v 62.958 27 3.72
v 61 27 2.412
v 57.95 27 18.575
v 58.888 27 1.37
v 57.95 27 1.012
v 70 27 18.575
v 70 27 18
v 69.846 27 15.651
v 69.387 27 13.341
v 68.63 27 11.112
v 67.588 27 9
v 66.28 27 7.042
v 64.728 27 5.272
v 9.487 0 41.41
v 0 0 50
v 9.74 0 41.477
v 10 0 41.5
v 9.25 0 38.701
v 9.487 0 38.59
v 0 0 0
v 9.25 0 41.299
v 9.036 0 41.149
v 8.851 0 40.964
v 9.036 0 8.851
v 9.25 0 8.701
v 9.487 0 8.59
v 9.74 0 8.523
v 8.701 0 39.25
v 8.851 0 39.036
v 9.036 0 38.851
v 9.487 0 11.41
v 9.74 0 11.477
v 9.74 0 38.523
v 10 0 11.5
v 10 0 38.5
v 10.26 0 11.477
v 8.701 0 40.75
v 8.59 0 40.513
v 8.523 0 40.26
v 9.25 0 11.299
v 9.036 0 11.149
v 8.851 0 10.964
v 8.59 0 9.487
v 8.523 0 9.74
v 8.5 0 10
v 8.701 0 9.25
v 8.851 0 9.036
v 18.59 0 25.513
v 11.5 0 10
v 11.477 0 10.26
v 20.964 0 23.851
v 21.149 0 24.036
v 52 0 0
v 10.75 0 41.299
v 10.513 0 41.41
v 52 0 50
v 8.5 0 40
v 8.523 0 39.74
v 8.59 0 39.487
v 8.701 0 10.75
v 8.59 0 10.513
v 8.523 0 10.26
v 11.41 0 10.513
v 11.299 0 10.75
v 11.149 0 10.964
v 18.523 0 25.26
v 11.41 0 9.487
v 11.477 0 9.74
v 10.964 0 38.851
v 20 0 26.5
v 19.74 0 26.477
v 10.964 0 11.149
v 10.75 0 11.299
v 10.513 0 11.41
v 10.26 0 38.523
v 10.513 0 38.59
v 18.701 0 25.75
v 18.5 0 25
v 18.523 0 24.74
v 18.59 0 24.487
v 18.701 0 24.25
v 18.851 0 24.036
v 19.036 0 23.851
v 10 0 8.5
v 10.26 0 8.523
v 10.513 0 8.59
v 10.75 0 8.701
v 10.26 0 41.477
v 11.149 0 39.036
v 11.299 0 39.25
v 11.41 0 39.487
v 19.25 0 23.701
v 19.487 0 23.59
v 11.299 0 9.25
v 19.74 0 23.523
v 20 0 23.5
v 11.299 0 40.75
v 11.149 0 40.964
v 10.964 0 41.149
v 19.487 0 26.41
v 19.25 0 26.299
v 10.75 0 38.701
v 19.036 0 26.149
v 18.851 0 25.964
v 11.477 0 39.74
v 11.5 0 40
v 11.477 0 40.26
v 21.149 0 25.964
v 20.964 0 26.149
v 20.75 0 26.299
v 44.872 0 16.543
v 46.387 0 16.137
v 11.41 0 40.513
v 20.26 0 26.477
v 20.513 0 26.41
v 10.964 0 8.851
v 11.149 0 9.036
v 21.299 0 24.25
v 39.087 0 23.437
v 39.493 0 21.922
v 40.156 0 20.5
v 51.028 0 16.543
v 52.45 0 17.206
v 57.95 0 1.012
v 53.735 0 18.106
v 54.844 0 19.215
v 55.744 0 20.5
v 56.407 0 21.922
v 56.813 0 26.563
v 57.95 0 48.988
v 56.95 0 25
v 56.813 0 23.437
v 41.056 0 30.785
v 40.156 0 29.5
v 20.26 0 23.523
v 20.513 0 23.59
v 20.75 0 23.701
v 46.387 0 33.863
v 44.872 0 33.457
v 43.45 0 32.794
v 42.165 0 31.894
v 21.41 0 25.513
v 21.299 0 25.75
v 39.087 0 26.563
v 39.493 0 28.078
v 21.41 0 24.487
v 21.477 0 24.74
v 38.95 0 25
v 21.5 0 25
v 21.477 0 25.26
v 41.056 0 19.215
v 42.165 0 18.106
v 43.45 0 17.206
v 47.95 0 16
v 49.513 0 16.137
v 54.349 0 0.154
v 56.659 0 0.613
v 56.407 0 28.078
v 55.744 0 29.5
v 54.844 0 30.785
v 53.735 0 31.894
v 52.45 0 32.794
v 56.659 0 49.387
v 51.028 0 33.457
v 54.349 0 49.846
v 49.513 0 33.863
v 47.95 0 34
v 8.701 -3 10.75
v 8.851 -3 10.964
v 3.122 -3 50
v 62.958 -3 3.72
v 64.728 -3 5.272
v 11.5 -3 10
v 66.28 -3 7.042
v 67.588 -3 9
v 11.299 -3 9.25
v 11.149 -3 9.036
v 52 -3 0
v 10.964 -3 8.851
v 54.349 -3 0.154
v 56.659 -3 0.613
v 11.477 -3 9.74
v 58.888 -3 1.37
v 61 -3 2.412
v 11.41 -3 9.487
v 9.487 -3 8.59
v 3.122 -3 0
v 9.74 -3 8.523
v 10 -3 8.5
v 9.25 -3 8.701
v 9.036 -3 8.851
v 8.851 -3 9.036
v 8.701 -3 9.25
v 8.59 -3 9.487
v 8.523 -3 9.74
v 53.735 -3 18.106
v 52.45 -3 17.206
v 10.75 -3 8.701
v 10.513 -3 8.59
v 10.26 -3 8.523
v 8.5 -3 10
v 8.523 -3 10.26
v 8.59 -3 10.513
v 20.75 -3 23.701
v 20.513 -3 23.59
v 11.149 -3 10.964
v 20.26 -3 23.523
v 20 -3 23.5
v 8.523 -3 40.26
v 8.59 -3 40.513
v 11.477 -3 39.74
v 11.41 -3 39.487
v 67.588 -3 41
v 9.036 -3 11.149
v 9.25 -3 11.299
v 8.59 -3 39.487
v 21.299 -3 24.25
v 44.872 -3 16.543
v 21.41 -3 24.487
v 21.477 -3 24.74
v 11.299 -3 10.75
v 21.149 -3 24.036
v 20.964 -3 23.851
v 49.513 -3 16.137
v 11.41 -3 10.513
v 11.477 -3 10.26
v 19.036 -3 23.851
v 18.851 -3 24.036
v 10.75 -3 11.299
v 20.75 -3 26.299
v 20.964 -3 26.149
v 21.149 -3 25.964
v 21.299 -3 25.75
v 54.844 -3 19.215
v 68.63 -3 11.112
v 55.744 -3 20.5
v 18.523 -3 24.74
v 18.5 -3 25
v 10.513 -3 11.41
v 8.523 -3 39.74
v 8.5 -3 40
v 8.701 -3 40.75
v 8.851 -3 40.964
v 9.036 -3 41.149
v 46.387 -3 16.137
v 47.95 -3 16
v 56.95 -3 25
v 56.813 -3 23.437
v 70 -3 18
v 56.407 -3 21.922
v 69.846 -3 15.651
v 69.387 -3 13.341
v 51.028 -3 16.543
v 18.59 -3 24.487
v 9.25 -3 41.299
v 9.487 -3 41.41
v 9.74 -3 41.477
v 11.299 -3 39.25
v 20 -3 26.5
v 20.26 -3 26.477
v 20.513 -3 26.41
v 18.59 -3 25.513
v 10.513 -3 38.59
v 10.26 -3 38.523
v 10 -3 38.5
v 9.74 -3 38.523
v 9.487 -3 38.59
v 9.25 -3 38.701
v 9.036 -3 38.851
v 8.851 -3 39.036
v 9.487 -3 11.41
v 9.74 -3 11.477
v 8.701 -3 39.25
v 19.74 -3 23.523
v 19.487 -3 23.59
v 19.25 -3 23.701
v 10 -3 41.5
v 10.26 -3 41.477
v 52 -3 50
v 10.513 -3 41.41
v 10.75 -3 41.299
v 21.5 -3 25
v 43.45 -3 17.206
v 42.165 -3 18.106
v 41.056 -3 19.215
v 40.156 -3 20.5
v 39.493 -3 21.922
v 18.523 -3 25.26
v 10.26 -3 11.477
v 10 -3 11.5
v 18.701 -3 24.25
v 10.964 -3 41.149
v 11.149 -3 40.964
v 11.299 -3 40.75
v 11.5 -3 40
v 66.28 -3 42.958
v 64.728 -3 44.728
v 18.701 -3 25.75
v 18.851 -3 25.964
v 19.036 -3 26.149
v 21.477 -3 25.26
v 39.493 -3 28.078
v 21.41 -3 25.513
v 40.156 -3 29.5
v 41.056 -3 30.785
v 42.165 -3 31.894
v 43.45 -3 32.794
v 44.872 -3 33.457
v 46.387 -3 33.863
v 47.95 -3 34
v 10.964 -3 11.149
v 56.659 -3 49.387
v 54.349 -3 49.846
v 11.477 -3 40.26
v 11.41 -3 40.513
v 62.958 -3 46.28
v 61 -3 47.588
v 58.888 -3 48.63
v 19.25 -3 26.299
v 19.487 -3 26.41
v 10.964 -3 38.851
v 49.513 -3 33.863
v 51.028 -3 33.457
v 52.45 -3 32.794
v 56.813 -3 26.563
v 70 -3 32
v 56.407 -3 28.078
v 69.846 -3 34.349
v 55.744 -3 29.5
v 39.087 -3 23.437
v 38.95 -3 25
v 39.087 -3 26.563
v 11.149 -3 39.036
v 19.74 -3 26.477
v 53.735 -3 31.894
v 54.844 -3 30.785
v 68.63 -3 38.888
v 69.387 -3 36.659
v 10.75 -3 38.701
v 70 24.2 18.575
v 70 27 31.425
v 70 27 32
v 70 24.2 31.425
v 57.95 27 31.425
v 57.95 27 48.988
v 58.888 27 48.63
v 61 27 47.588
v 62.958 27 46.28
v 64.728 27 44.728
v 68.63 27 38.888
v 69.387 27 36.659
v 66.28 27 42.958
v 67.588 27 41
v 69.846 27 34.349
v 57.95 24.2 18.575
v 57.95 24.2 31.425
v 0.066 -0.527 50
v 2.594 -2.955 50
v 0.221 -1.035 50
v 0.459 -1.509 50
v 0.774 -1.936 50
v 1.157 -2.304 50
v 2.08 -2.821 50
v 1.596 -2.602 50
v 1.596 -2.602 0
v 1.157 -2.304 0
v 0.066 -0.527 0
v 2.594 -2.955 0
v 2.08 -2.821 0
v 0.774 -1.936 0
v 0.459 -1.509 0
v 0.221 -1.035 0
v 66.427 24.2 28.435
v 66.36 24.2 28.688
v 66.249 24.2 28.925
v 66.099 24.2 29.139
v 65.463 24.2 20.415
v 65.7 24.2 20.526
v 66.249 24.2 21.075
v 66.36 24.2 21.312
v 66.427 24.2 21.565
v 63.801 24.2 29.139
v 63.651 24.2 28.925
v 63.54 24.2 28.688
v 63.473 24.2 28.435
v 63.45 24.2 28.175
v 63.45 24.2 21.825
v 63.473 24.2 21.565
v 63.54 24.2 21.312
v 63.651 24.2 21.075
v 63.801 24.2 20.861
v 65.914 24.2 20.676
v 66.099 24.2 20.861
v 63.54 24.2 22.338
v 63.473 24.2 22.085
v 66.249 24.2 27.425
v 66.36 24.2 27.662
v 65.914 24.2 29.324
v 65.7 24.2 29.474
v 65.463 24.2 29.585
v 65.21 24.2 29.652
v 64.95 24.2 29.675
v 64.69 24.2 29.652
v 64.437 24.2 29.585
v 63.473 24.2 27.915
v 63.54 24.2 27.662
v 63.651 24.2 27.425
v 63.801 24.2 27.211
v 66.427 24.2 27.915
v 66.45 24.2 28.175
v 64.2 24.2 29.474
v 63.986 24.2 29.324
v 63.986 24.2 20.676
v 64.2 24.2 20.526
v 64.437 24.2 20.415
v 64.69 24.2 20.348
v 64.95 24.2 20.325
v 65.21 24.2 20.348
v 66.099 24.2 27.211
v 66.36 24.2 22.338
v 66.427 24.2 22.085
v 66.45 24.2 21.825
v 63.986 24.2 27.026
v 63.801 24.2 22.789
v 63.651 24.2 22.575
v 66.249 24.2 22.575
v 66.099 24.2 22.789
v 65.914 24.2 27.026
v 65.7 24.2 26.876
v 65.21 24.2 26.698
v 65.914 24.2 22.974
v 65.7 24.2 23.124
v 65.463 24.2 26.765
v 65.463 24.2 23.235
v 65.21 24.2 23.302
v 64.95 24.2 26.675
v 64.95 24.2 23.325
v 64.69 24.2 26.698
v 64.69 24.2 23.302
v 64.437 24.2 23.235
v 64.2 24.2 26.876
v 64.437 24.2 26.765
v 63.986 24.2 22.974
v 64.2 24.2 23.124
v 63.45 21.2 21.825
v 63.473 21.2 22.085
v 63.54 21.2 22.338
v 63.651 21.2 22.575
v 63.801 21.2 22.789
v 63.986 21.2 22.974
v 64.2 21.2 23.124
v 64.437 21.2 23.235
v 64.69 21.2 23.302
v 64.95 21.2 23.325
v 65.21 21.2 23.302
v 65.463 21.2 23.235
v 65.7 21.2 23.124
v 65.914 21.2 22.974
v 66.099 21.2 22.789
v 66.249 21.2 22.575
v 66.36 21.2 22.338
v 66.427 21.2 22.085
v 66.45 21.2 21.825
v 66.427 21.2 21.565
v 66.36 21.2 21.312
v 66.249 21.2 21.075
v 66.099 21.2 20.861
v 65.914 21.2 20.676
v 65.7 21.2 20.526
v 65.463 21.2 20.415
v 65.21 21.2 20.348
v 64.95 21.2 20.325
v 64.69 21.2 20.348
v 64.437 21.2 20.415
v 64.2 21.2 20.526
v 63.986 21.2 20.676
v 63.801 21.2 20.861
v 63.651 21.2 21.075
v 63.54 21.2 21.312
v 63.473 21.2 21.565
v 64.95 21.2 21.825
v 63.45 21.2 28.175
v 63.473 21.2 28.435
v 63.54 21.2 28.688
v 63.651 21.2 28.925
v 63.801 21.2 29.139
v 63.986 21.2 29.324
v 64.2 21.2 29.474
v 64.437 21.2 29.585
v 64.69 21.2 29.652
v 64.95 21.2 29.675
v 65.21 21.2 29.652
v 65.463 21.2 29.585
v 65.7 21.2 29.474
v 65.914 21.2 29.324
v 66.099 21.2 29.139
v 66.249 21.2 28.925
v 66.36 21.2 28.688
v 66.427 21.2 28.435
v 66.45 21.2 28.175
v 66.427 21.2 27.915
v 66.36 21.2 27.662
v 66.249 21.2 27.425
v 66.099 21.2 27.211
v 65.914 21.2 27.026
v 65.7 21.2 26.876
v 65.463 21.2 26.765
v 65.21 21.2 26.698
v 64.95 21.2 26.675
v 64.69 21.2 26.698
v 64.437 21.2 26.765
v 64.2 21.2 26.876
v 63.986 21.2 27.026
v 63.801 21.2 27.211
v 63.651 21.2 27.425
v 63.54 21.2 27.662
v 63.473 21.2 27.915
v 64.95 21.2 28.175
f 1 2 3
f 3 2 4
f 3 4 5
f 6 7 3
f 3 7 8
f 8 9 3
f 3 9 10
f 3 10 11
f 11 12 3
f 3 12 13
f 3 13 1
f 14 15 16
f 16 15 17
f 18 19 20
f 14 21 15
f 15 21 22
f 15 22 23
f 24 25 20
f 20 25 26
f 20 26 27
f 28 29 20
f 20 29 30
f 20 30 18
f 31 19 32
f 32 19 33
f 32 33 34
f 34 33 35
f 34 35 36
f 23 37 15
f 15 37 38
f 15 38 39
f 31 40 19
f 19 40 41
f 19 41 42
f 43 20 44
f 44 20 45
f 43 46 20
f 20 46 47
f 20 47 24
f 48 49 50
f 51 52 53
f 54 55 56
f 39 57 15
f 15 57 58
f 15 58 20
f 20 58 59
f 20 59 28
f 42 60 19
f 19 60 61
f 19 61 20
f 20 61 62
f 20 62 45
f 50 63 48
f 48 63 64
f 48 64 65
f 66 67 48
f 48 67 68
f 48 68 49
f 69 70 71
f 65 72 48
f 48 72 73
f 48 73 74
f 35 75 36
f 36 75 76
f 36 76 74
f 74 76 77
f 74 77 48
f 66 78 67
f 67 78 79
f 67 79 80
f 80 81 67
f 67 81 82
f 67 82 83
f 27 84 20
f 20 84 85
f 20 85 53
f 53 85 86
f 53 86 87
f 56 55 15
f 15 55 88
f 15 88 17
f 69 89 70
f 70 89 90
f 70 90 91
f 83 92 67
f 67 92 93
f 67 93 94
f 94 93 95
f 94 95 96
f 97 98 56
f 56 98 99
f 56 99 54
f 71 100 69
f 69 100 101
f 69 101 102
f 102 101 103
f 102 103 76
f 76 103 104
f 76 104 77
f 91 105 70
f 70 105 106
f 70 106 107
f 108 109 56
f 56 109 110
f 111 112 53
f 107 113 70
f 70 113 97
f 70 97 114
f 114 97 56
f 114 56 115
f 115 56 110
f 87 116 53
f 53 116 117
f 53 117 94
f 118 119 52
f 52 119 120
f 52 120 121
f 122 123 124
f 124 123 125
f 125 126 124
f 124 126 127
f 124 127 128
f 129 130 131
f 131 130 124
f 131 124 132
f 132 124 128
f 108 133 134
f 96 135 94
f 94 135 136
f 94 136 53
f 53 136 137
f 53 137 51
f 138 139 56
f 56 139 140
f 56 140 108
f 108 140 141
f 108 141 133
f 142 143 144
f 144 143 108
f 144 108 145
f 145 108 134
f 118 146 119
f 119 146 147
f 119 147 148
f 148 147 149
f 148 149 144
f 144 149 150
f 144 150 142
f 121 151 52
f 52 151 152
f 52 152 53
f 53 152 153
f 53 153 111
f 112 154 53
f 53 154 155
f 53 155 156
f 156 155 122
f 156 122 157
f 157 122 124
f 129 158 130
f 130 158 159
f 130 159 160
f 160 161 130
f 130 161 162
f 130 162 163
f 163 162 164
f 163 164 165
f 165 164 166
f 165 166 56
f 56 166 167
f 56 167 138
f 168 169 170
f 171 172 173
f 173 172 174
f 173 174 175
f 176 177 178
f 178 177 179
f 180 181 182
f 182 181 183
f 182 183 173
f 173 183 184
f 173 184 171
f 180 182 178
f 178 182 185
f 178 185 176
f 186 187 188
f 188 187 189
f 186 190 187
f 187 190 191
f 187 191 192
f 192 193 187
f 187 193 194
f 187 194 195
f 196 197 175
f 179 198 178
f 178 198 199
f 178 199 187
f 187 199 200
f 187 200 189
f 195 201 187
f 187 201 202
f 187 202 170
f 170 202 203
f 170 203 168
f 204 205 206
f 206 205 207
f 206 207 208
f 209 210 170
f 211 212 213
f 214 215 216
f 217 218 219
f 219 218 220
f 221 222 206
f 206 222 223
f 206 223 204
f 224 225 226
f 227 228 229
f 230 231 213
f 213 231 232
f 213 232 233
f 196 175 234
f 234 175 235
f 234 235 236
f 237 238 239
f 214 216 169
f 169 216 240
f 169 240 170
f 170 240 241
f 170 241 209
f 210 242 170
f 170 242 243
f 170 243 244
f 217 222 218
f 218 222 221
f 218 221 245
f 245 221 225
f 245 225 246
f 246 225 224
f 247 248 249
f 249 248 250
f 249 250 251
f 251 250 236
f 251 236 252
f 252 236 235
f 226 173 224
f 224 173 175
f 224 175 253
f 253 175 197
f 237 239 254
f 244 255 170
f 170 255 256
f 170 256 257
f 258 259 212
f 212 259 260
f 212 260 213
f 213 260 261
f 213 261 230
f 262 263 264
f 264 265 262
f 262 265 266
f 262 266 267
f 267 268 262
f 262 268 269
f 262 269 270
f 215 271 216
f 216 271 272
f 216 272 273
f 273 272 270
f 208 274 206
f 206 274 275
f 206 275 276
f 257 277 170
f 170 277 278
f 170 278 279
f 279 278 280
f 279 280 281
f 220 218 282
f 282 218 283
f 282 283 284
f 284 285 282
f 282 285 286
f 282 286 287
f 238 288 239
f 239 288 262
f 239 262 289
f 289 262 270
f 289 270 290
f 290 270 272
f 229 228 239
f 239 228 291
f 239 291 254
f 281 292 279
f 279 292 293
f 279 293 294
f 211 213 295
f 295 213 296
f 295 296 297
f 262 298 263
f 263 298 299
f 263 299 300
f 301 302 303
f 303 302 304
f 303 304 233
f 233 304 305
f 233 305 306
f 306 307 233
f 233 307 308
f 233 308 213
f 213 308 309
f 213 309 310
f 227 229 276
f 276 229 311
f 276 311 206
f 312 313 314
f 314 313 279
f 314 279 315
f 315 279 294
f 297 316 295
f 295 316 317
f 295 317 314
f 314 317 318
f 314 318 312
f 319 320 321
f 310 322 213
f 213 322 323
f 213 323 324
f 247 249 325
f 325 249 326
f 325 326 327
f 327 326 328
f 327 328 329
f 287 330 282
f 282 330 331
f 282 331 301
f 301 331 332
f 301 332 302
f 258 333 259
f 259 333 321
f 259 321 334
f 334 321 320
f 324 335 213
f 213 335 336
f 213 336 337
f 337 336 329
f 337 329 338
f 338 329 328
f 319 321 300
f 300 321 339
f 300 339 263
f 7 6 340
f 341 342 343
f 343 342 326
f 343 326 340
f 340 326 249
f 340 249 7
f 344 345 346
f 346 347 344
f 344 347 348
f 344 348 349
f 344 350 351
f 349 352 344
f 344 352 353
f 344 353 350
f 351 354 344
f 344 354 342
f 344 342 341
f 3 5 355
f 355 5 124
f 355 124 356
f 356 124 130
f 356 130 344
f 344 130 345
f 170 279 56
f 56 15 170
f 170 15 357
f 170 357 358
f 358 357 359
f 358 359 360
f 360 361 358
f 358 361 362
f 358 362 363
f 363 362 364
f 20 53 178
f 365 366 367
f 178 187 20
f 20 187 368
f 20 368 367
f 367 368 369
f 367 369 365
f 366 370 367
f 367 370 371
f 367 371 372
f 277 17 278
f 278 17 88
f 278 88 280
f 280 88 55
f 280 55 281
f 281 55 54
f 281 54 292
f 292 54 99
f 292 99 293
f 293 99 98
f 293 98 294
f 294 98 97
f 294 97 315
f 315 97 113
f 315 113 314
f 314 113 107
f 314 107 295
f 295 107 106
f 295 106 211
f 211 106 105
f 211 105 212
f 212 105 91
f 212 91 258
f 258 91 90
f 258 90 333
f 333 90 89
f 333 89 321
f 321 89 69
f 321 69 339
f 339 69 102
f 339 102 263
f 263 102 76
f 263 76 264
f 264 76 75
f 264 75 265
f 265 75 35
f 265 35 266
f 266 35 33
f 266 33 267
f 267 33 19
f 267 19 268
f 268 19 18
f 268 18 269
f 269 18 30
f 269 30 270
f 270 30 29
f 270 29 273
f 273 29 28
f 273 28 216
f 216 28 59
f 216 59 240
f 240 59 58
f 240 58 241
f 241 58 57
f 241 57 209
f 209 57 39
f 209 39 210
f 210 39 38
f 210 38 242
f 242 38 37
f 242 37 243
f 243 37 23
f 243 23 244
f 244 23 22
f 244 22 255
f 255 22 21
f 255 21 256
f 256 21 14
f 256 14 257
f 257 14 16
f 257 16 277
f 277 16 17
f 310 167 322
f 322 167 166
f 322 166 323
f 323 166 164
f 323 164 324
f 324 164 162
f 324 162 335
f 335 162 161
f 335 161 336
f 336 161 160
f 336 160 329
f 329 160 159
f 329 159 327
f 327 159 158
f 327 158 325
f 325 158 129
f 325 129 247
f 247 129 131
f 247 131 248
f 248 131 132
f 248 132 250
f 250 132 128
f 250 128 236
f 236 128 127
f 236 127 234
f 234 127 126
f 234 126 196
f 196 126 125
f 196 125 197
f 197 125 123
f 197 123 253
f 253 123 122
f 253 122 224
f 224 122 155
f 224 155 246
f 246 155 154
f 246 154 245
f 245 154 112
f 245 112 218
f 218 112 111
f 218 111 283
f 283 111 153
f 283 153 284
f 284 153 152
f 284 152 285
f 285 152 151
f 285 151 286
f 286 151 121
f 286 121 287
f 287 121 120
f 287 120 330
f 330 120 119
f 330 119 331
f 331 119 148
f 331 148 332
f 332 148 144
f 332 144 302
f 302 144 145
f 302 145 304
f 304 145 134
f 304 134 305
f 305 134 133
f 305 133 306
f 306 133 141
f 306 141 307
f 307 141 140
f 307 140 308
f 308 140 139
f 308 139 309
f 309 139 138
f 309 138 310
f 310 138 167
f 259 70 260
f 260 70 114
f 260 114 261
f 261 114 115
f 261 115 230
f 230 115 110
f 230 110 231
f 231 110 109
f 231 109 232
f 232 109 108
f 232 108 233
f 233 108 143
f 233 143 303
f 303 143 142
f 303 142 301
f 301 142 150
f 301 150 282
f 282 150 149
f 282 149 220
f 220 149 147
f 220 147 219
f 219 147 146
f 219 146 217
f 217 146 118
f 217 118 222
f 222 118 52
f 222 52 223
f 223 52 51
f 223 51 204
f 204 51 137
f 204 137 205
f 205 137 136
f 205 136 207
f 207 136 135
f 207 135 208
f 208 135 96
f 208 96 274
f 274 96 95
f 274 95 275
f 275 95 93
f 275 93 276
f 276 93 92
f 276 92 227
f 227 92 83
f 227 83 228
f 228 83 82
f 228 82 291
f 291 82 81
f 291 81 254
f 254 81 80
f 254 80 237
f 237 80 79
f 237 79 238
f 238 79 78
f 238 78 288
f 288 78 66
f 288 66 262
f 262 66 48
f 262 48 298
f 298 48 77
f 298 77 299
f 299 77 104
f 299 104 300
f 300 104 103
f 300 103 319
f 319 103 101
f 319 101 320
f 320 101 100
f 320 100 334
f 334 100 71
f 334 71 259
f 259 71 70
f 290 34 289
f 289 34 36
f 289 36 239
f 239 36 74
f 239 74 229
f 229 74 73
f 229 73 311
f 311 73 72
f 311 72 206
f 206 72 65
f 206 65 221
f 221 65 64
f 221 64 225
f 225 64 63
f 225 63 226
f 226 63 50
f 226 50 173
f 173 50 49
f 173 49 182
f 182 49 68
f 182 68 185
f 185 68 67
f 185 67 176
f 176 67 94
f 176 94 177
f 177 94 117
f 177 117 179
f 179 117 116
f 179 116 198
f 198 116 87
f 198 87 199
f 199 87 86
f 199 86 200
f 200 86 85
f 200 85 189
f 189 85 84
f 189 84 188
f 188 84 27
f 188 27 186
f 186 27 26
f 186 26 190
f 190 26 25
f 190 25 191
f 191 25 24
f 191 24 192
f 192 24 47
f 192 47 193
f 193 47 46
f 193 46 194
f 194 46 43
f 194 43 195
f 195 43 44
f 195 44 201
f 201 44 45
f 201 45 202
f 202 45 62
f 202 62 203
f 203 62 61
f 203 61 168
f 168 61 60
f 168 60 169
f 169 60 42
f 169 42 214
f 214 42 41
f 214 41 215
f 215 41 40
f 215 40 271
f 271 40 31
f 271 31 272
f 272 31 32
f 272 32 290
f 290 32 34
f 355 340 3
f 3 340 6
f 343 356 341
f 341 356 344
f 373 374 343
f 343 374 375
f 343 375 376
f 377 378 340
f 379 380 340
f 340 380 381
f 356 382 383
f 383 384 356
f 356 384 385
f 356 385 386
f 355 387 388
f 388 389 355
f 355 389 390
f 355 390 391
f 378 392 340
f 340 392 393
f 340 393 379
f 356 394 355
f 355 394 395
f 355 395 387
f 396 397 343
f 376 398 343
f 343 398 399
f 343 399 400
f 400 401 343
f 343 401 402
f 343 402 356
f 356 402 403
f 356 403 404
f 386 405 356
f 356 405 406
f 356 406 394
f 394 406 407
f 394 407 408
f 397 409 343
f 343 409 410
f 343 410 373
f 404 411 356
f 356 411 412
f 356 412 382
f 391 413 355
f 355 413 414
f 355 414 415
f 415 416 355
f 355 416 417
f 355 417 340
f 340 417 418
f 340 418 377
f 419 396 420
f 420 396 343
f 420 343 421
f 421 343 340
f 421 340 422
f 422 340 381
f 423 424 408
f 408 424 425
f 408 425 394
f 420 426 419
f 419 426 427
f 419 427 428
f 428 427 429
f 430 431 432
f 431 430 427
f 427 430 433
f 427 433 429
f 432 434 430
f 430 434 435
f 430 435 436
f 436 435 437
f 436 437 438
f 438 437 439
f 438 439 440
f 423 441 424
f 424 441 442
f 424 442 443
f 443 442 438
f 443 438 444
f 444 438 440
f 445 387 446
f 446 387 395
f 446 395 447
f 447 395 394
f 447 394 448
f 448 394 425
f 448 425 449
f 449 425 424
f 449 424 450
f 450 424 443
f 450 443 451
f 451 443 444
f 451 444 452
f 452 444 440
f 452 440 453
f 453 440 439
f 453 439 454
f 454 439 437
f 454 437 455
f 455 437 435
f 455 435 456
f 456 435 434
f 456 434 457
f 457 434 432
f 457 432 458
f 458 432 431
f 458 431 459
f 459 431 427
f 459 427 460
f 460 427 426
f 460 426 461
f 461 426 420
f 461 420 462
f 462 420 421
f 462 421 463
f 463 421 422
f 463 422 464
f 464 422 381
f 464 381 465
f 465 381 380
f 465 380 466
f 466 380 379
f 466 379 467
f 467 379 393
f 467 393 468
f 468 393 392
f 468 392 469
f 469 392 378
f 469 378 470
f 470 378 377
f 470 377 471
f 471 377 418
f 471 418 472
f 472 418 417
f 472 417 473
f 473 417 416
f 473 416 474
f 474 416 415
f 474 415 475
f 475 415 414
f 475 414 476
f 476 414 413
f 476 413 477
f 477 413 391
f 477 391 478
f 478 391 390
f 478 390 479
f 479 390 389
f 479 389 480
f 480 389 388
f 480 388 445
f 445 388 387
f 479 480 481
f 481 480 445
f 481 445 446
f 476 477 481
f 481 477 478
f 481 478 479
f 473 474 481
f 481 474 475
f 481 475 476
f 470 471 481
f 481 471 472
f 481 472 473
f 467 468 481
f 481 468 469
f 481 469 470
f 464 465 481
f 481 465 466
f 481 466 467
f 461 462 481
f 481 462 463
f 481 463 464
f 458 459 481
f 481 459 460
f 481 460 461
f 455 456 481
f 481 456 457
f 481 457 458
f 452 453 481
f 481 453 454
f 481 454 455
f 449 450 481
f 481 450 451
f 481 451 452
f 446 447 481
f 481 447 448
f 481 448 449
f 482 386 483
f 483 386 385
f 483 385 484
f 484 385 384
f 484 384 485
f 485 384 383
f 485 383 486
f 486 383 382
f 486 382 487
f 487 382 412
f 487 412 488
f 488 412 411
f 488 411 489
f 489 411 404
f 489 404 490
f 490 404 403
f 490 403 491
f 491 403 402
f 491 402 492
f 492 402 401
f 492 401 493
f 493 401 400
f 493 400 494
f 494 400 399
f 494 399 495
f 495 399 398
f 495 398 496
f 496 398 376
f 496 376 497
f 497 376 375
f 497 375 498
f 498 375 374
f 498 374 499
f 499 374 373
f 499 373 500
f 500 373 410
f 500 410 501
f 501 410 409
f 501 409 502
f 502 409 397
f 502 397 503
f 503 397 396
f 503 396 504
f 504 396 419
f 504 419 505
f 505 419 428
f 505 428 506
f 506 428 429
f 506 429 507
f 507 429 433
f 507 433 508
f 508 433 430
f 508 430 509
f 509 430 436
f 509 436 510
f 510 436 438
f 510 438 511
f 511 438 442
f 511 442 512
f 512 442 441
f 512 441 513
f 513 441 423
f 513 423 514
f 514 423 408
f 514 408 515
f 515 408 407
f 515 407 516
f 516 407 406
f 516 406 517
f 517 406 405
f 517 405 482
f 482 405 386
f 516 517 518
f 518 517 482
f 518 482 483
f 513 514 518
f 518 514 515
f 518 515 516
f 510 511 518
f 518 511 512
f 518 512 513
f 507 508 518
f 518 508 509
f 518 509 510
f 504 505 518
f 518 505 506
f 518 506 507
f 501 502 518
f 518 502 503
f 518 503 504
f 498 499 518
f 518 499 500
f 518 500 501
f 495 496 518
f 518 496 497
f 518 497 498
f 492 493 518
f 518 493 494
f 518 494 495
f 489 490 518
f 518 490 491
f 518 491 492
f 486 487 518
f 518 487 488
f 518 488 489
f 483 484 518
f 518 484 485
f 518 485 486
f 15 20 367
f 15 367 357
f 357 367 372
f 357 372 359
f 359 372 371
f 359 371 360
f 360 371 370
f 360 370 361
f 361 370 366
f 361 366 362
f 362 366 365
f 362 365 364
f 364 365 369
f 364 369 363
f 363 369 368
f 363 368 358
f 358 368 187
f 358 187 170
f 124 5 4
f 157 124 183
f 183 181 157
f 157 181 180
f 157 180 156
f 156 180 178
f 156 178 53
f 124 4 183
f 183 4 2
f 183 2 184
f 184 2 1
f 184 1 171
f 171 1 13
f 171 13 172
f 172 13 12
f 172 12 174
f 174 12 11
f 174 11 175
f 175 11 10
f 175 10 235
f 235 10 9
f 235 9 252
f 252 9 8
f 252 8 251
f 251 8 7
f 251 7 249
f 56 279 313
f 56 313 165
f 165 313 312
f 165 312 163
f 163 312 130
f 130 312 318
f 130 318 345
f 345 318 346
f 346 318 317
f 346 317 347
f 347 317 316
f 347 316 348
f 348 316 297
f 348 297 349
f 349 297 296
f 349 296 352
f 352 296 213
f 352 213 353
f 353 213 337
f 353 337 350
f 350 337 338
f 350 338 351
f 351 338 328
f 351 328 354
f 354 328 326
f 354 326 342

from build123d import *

# Parameters (mm, degrees)
BOSS_EXTRUDE1_DEPTH                        = 50
MOUNTHOLESSKETCH2_R                        = 1.5
MOUNTHOLESSKETCH2_R_2                      = 9
MOUNTHOLESCUT_EXTRUDE1_DEPTH               = 91.160967164
MICROSWITCHCUTSKETCH3_W                    = 12.05
MICROSWITCHCUTSKETCH3_H                    = 12.85
MICROSWITCHCUT_EXTRUDE2_DEPTH              = 2.8
MICROSWITCHMOUNTINGHOLESSKETCH4_R          = 1.5
MICROSWITCHMOUNTINGHOLESCUT_EXTRUDE3_DEPTH = 3
RAILEDGEFILLET1_R                          = 3.125
FRONTEDGEFILLET1_R                         = 18


with BuildPart() as part:
    # ProfileSketch1 → Boss-Extrude1 (new body)
    with BuildSketch(Plane.XY):
        Polygon((70, 0), (70, -3), (0, -3), (0, 0), (57.95, 0), (57.95, 27), (70, 27), align=None)
    extrude(amount=BOSS_EXTRUDE1_DEPTH)

    # MountHolesSketch2 → MountHolesCut-Extrude1 (cut, through all)
    with BuildSketch(Plane(origin=(0, 0, 0), x_dir=(1, 0, 0), z_dir=(0, 1, 0))):
        with Locations(Location((10, -10, 0), (0, 0, 270))):
            Circle(MOUNTHOLESSKETCH2_R)
        with Locations(Location((10, -40, 0), (0, 0, 270))):
            Circle(MOUNTHOLESSKETCH2_R)
        with Locations(Location((47.95, -25, 0), (0, 0, 270))):
            Circle(MOUNTHOLESSKETCH2_R_2)
        with Locations(Location((20, -25, 0), (0, 0, 270))):
            Circle(MOUNTHOLESSKETCH2_R)
    extrude(amount=-MOUNTHOLESCUT_EXTRUDE1_DEPTH, mode=Mode.SUBTRACT)

    # MicroSwitchCutSketch3 → MicroSwitchCut-Extrude2 (cut)
    with BuildSketch(Plane(origin=(0, 27, 0), x_dir=(1, 0, 0), z_dir=(0, 1, 0))):
        with Locations((63.975, -25)):
            Rectangle(MICROSWITCHCUTSKETCH3_W, MICROSWITCHCUTSKETCH3_H)
    extrude(amount=-MICROSWITCHCUT_EXTRUDE2_DEPTH, mode=Mode.SUBTRACT)

    # MicroSwitchMountingHolesSketch4 → MicroSwitchMountingHolesCut-Extrude3 (cut)
    with BuildSketch(Plane(origin=(0, 24.2, 0), x_dir=(1, 0, 0), z_dir=(0, 1, 0))):
        with Locations(Location((64.95, -28.175, 0), (0, 0, 180))):
            Circle(MICROSWITCHMOUNTINGHOLESSKETCH4_R)
        with Locations(Location((64.95, -21.825, 0), (0, 0, 180))):
            Circle(MICROSWITCHMOUNTINGHOLESSKETCH4_R)
    extrude(amount=-MICROSWITCHMOUNTINGHOLESCUT_EXTRUDE3_DEPTH, mode=Mode.SUBTRACT)

    # RailEdgeFillet1
    # the kernel refuses this fillet: 3.125 mm, written as the material it takes off along each edge
    with BuildSketch(Plane(origin=(0, -3, -7.806247498), x_dir=(1, 0, 0), z_dir=(0, 0, 1))) as railedgefillet1_piece_1:
        with BuildLine():
            CenterArc((3.122498999, 3.125), RAILEDGEFILLET1_R, 182.292442776, 87.707557224)
            Line((0, 3), (-0.06244998, 2.9975))
            ThreePointArc((-0.06244998, 2.9975), (-0.0625, 1.5), (-0.0625, 0))
            Line((-0.0625, 0), (0, -0.0625))
            Line((0, -0.0625), (3.122498999, -0.0625))
            Line((3.122498999, -0.0625), (3.122498999, 0))
        make_face()
    extrude(amount=65.612494996, mode=Mode.SUBTRACT)

    # FrontEdgeFillet1
    frontedgefillet1_edges = [part.edges().sort_by_distance(p)[0] for p in [
        (70, 12, 0),
        (70, 12, 50),
    ]]
    fillet(frontedgefillet1_edges, radius=FRONTEDGEFILLET1_R)


solid = part.part
